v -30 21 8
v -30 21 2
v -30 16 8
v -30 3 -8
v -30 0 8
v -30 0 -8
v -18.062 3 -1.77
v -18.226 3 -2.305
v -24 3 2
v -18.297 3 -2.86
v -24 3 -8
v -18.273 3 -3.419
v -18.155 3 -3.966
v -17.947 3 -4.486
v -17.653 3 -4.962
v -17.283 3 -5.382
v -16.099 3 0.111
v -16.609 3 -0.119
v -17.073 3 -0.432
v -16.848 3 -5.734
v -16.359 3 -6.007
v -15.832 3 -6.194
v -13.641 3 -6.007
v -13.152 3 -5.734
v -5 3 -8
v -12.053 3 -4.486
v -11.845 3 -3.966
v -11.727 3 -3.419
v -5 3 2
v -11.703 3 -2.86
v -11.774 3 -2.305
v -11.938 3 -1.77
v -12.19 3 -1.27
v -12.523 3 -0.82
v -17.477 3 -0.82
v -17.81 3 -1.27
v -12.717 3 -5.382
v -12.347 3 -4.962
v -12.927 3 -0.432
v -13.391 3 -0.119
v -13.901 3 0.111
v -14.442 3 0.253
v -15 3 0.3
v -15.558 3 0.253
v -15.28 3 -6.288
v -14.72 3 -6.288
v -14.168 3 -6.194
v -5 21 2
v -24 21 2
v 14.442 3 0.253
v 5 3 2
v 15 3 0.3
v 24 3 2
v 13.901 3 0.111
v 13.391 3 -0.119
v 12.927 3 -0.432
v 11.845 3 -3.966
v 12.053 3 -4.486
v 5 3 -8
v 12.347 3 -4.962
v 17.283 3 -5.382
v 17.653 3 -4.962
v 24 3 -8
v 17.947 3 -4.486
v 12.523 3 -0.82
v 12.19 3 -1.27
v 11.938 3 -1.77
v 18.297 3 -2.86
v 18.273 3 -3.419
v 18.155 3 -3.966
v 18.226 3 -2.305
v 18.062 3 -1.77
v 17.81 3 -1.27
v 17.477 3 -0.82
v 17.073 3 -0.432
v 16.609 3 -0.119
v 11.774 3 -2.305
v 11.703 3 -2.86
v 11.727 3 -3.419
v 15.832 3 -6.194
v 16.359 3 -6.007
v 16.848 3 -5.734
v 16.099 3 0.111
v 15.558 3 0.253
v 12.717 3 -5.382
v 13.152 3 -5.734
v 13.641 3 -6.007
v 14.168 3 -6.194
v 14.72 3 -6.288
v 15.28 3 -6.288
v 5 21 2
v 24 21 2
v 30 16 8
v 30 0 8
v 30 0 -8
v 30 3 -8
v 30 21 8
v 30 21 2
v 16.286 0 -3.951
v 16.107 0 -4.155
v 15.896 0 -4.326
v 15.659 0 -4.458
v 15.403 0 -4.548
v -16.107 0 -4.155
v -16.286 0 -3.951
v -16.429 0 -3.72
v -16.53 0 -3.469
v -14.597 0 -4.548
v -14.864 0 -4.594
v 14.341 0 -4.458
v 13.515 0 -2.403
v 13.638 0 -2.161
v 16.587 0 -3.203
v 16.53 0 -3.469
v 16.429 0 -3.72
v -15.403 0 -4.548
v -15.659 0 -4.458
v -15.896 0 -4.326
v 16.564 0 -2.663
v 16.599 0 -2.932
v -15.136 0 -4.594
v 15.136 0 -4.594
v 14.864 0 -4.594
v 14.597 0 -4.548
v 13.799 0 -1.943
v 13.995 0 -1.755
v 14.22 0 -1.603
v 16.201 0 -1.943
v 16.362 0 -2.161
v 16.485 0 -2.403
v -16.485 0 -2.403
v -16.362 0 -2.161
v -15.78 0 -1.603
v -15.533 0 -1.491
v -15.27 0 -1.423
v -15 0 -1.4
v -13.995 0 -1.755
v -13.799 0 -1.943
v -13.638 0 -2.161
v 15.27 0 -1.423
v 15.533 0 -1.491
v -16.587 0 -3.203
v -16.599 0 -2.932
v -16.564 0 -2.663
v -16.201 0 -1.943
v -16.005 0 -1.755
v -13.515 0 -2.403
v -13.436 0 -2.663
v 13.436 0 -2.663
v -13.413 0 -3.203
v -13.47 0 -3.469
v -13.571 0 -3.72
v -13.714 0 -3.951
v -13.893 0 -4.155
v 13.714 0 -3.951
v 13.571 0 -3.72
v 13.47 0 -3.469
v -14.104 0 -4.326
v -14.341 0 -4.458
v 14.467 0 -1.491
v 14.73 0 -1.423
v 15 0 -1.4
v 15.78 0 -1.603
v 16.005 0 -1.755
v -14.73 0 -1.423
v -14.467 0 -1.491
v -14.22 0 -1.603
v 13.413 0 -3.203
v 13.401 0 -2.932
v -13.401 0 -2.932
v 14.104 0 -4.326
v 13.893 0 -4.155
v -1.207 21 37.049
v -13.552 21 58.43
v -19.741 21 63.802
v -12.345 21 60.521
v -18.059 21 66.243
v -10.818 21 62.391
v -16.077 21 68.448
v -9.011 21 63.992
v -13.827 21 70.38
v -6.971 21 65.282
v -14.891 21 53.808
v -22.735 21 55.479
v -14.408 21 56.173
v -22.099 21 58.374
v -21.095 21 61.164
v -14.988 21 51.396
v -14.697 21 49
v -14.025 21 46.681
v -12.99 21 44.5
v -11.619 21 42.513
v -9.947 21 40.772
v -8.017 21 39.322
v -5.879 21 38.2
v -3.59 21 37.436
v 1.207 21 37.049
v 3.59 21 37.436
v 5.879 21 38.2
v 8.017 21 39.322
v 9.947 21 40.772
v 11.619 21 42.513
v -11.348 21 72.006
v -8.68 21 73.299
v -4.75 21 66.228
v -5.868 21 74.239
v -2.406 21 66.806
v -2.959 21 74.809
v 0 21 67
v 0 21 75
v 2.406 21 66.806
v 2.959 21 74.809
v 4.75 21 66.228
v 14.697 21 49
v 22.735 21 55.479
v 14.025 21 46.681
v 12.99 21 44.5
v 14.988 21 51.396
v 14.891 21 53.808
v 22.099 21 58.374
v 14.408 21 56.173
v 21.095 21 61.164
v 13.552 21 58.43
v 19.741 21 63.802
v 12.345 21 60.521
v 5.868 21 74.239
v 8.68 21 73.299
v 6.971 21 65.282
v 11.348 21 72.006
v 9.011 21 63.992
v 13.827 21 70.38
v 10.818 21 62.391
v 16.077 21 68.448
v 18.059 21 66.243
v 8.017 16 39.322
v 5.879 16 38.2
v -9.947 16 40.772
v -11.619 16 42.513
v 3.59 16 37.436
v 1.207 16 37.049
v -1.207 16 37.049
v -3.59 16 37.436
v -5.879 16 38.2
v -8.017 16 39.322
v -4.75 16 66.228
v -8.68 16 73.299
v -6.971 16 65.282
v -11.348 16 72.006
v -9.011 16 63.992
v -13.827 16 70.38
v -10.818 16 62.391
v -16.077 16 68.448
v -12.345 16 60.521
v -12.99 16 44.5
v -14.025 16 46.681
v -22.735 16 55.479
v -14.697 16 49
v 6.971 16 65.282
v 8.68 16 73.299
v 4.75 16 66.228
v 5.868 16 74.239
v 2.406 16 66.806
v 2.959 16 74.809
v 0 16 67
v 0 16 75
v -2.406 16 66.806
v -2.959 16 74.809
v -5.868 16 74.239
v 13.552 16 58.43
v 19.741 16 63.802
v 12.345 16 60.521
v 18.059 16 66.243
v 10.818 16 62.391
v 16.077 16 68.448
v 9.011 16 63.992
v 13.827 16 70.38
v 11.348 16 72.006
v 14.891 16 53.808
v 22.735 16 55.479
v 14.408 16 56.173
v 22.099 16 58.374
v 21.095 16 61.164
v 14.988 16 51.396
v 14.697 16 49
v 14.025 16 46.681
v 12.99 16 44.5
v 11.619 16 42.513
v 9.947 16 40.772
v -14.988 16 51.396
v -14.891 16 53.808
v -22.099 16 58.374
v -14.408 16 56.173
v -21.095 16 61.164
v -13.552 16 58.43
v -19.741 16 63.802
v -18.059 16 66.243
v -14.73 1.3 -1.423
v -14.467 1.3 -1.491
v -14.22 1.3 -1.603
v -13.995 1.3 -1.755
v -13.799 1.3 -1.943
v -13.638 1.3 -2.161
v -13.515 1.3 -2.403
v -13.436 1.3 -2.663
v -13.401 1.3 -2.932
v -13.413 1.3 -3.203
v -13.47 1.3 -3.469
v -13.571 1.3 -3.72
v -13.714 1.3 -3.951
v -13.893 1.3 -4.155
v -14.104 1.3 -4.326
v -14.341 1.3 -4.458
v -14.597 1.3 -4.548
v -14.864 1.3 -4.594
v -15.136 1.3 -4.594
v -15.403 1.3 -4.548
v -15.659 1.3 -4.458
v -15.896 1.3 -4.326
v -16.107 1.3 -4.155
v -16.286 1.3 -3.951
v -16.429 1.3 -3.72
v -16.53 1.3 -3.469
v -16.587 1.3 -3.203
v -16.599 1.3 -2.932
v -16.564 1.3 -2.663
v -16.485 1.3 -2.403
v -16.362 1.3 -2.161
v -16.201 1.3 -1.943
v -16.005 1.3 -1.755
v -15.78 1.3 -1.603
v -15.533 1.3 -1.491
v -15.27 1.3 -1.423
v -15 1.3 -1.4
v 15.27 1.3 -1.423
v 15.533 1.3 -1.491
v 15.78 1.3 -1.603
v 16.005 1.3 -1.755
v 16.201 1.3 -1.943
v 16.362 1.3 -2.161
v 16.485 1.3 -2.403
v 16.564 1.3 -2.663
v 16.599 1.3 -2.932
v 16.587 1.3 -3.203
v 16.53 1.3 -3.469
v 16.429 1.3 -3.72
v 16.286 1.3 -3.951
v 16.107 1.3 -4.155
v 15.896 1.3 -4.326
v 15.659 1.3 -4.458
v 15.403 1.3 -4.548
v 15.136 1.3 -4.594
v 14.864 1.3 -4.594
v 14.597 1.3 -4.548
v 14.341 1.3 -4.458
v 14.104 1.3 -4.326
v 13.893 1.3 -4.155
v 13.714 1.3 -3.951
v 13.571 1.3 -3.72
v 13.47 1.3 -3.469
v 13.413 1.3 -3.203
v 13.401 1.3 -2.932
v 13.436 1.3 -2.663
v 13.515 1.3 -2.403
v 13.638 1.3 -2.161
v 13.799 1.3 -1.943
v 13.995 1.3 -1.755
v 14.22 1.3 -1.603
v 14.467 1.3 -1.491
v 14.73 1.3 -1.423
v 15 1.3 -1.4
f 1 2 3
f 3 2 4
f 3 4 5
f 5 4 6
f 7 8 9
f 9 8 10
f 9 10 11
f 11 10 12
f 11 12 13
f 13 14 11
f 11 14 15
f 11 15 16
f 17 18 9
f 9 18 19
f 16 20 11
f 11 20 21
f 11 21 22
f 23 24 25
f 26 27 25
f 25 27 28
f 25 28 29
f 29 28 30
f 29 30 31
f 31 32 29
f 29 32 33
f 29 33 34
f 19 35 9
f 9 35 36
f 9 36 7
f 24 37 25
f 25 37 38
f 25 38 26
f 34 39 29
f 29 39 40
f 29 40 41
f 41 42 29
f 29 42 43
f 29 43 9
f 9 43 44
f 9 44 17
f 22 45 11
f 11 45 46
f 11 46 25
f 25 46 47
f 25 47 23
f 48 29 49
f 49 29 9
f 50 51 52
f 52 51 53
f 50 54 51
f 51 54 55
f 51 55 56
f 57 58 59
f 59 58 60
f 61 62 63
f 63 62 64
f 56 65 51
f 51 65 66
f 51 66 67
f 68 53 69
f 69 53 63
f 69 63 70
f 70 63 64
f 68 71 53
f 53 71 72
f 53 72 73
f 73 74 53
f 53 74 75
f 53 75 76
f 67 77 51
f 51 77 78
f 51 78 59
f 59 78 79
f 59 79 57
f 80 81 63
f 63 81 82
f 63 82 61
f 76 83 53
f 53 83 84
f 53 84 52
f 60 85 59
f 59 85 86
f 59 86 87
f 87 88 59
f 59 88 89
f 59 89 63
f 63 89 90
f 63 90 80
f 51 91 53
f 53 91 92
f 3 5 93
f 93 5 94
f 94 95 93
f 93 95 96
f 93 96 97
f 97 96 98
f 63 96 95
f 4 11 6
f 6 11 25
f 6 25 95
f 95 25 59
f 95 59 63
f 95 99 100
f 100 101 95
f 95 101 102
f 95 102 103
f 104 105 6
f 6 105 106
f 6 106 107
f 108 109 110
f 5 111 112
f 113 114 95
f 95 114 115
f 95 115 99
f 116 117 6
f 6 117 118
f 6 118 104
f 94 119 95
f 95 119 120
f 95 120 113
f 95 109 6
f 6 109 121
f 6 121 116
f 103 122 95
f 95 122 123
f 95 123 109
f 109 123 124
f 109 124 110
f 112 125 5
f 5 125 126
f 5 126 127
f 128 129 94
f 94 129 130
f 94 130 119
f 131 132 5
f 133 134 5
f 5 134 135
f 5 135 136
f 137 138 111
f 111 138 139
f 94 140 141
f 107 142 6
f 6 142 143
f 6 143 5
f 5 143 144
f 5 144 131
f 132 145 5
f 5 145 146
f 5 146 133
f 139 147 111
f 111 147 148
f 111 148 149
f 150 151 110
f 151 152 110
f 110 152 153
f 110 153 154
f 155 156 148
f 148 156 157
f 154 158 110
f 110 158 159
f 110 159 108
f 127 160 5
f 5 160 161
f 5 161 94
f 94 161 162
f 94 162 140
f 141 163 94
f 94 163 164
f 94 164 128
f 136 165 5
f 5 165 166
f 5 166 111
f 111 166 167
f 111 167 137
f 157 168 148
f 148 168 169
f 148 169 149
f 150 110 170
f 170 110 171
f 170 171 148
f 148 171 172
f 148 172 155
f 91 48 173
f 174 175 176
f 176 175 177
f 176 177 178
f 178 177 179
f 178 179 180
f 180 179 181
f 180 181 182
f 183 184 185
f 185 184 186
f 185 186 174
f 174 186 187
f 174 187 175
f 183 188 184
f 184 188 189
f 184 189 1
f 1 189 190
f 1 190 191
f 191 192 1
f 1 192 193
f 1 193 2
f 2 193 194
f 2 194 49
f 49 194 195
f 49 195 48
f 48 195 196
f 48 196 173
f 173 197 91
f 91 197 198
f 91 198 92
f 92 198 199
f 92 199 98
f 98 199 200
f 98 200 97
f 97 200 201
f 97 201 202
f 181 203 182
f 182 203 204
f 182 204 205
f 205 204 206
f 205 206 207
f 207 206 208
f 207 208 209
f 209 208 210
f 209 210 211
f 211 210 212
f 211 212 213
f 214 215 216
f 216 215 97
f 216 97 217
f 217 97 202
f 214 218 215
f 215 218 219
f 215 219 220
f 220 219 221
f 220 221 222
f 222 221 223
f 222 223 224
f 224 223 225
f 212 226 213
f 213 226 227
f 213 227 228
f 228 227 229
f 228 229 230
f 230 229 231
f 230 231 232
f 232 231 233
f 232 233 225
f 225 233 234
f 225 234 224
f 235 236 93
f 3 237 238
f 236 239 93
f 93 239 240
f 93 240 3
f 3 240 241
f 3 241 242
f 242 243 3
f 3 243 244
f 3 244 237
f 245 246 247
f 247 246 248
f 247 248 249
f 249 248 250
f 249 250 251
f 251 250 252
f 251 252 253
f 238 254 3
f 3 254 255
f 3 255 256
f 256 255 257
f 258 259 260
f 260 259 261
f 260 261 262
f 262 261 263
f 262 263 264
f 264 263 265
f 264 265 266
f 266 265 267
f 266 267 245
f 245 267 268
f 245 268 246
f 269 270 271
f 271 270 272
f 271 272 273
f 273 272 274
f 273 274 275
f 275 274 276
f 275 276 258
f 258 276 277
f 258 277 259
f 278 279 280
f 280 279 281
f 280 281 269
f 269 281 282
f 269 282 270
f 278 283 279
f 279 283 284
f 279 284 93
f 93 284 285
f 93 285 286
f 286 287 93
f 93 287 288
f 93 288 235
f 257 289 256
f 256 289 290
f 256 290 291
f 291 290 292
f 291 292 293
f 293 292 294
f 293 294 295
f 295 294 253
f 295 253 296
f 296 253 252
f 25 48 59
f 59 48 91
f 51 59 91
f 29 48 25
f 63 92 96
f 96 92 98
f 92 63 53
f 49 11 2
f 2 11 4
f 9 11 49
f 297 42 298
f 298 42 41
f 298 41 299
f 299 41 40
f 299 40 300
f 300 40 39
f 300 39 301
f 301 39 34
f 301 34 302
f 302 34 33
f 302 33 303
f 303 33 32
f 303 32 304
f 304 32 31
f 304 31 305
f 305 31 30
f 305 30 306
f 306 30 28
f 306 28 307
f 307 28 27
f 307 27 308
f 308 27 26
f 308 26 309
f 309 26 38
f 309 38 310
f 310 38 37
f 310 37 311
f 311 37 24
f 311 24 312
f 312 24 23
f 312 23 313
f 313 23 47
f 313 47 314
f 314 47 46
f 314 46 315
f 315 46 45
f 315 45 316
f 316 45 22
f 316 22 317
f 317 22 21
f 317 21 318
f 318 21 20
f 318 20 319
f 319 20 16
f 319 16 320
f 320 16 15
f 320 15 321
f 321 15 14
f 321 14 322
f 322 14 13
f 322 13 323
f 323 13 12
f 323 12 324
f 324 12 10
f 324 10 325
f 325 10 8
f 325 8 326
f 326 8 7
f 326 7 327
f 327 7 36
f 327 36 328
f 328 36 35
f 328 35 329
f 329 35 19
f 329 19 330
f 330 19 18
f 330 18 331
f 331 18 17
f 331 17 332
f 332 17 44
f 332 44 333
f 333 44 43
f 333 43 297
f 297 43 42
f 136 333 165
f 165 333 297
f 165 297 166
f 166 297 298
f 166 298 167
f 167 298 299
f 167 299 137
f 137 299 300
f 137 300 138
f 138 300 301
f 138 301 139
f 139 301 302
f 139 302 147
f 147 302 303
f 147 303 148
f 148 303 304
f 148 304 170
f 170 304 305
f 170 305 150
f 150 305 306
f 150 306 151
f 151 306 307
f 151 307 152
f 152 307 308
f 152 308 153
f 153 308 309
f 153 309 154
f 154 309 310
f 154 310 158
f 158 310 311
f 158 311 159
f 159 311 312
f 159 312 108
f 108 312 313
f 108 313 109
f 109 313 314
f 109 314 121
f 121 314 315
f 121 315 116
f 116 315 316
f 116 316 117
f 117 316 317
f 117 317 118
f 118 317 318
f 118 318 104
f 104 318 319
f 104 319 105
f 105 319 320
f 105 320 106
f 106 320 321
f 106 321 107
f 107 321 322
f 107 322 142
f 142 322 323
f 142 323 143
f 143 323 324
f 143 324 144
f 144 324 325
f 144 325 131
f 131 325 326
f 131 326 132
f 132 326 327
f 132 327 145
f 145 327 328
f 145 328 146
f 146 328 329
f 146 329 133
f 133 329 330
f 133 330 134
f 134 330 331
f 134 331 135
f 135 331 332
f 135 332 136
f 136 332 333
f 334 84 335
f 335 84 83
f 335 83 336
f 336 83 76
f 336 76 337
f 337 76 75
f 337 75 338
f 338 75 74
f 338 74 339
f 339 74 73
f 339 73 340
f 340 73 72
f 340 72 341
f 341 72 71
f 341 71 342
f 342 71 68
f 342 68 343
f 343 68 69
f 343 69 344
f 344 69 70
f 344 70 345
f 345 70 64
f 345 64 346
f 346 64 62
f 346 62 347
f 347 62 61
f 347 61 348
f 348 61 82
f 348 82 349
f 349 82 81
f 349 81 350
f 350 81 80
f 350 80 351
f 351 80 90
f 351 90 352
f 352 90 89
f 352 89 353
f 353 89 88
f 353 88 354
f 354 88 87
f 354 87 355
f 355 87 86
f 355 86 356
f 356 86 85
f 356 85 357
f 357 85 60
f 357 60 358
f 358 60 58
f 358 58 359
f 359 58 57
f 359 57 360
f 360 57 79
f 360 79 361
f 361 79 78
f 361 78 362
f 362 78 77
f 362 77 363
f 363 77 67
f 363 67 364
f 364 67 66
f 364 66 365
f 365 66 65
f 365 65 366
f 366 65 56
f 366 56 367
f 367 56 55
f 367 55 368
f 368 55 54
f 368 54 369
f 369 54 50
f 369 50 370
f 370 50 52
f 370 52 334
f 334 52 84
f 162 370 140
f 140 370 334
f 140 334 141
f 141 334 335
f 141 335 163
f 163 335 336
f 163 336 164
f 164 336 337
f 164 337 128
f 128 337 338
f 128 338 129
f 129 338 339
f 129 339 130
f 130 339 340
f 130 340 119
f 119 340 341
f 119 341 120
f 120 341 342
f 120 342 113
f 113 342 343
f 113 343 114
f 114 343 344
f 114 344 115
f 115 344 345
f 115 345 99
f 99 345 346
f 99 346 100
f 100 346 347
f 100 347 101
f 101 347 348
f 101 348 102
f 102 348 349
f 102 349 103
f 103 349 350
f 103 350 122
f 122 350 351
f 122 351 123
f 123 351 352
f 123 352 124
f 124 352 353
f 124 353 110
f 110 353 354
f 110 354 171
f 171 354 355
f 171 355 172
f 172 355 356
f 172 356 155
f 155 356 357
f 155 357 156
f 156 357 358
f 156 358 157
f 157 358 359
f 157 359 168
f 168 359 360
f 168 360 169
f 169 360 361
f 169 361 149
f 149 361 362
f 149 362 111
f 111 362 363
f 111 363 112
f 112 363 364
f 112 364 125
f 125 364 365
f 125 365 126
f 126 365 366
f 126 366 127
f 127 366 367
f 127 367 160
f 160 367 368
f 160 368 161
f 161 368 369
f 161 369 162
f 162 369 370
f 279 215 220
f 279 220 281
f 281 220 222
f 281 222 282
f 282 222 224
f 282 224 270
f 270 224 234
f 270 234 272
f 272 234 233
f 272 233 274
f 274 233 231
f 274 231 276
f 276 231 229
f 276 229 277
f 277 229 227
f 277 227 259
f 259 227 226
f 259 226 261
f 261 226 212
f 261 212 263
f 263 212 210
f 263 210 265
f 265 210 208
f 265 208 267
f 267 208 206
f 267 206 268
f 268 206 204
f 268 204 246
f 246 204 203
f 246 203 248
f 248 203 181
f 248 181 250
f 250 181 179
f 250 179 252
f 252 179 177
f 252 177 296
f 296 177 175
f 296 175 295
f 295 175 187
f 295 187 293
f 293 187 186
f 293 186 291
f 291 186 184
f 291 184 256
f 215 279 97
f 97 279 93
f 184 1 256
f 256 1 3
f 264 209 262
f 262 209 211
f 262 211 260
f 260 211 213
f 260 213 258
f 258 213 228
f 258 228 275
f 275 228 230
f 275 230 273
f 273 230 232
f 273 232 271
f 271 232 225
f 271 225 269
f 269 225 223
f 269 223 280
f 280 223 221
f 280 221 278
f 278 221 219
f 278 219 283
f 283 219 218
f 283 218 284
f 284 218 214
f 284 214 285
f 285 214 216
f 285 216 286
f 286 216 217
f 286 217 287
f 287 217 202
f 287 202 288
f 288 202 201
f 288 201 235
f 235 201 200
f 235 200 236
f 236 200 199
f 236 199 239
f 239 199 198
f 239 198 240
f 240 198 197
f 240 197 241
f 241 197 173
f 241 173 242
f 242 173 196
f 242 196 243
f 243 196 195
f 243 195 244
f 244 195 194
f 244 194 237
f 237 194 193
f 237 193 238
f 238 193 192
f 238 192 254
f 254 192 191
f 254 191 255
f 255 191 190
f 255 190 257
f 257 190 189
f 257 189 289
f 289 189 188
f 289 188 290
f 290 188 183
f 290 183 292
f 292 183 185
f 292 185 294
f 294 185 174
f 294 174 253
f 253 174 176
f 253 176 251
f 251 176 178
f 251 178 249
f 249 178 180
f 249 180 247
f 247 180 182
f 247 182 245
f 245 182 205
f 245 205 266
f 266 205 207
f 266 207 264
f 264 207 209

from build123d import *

# Parameters (mm, degrees)
SKETCH_1_W          = 60
SKETCH_1_H          = 16
EXTRUDE_1_DEPTH     = 3
SKETCH_2_W          = 60
SKETCH_2_H          = 6
EXTRUDE_2_DEPTH     = 18
SKETCH_3_W          = 60
SKETCH_3_H          = 5
EXTRUDE_3_DEPTH     = 100
RIB_1_REACH         = 116.039
SKETCH_4_WALL_W     = 250.670193986
SKETCH_4_WALL_H     = 10
EXTRUDE_4_DEPTH     = 6
CUT_EXTRUDE_1_DEPTH = 115.039466852
SKETCH_8_3_R        = 15
CUT_EXTRUDE_2_DEPTH = 84.462566459


# Read off the part's stored shape, not the designer's step: 高级异型孔1
with BuildPart() as part:
    # 草图1 → 凸台-拉伸1 (new body)
    with BuildSketch(Plane(origin=(0, 0, 0), x_dir=(1, 0, 0), z_dir=(0, 1, 0))):
        Rectangle(SKETCH_1_W, SKETCH_1_H)
    extrude(amount=EXTRUDE_1_DEPTH)

    # 草图2 → 凸台-拉伸2 (add)
    with BuildSketch(Plane(origin=(0, 3, 0), x_dir=(1, 0, 0), z_dir=(0, 1, 0))):
        with Locations((0, -5)):
            Rectangle(SKETCH_2_W, SKETCH_2_H)
    extrude(amount=EXTRUDE_2_DEPTH)

    # 草图3 → 凸台-拉伸3 (add)
    with BuildSketch(Plane.XY.offset(8)):
        with Locations((0, 18.5)):
            Rectangle(SKETCH_3_W, SKETCH_3_H)
    extrude(amount=EXTRUDE_3_DEPTH)

    # 草图4 wall → 筋1 (add, up to next)
    with BuildSketch(Plane(origin=(0, 12, -3), x_dir=(0, -0.874157276122, -0.485642931179), z_dir=(0, 0.485642931179, -0.874157276122)), mode=Mode.PRIVATE) as rib_1_sk1:
        Rectangle(SKETCH_4_WALL_W, SKETCH_4_WALL_H)
    rib_1_tool1 = extrude(rib_1_sk1.sketch, amount=-RIB_1_REACH, mode=Mode.PRIVATE) - part.part
    add(rib_1_tool1.solids().sort_by_distance((0, 12, -3))[0])

    # 草图5 → 凸台-拉伸4 (add)
    with BuildSketch(Plane(origin=(30, 0, 0), x_dir=(0, 0, -1), z_dir=(1, 0, 0))):
        Polygon((-2, 21), (8, 3), (-2, 3), align=None)
    extrude_4 = extrude(amount=-EXTRUDE_4_DEPTH)

    # 镜向1: 凸台-拉伸4 across plane
    add(extrude_4.mirror(Plane(origin=(0, 0, 0), x_dir=(0, 0, 1), z_dir=(1, 0, 0))))

    # 高级异型孔1 outline → 高级异型孔1 (revolve, cut)
    with BuildSketch(Plane(origin=(-15, 0, -3), x_dir=(1, 0, 0), z_dir=(0, 0, 1))):
        Polygon((3.3, 3), (0, 3), (0, 0), (1.6, 0), (1.6, 1.3), align=None)
    other_1 = revolve(axis=Axis((-15, 0, -3), (0, 1, 0)), mode=Mode.SUBTRACT)

    # 镜向2: 高级异型孔1 across plane
    add(other_1.mirror(Plane(origin=(0, 0, 0), x_dir=(0, 0, 1), z_dir=(1, 0, 0))), mode=Mode.SUBTRACT)

    # 草图8 → 切除-拉伸1 (cut, through all)
    with BuildSketch(Plane(origin=(0, 21, 0), x_dir=(1, 0, 0), z_dir=(0, 1, 0))):
        with BuildLine():
            Line((-22.735407162, -55.478686702), (-30, -8))
            Line((-30, -8), (-30, -108))
            Line((-30, -108), (30, -108))
            Line((30, -108), (30, -8))
            Line((30, -8), (22.735407162, -55.478686702))
            ThreePointArc((22.735407162, -55.478686702), (0, -75), (-22.735407162, -55.478686702))
        make_face()
    extrude(amount=-CUT_EXTRUDE_1_DEPTH, mode=Mode.SUBTRACT)

    # 草图8<3> → 切除-拉伸2 (cut, through all)
    with BuildSketch(Plane(origin=(0, 21, 0), x_dir=(1, 0, 0), z_dir=(0, 1, 0))):
        with Locations(Location((0, -52, 0), (0, 0, 270))):
            Circle(SKETCH_8_3_R)
    extrude(amount=-CUT_EXTRUDE_2_DEPTH, mode=Mode.SUBTRACT)


solid = part.part
